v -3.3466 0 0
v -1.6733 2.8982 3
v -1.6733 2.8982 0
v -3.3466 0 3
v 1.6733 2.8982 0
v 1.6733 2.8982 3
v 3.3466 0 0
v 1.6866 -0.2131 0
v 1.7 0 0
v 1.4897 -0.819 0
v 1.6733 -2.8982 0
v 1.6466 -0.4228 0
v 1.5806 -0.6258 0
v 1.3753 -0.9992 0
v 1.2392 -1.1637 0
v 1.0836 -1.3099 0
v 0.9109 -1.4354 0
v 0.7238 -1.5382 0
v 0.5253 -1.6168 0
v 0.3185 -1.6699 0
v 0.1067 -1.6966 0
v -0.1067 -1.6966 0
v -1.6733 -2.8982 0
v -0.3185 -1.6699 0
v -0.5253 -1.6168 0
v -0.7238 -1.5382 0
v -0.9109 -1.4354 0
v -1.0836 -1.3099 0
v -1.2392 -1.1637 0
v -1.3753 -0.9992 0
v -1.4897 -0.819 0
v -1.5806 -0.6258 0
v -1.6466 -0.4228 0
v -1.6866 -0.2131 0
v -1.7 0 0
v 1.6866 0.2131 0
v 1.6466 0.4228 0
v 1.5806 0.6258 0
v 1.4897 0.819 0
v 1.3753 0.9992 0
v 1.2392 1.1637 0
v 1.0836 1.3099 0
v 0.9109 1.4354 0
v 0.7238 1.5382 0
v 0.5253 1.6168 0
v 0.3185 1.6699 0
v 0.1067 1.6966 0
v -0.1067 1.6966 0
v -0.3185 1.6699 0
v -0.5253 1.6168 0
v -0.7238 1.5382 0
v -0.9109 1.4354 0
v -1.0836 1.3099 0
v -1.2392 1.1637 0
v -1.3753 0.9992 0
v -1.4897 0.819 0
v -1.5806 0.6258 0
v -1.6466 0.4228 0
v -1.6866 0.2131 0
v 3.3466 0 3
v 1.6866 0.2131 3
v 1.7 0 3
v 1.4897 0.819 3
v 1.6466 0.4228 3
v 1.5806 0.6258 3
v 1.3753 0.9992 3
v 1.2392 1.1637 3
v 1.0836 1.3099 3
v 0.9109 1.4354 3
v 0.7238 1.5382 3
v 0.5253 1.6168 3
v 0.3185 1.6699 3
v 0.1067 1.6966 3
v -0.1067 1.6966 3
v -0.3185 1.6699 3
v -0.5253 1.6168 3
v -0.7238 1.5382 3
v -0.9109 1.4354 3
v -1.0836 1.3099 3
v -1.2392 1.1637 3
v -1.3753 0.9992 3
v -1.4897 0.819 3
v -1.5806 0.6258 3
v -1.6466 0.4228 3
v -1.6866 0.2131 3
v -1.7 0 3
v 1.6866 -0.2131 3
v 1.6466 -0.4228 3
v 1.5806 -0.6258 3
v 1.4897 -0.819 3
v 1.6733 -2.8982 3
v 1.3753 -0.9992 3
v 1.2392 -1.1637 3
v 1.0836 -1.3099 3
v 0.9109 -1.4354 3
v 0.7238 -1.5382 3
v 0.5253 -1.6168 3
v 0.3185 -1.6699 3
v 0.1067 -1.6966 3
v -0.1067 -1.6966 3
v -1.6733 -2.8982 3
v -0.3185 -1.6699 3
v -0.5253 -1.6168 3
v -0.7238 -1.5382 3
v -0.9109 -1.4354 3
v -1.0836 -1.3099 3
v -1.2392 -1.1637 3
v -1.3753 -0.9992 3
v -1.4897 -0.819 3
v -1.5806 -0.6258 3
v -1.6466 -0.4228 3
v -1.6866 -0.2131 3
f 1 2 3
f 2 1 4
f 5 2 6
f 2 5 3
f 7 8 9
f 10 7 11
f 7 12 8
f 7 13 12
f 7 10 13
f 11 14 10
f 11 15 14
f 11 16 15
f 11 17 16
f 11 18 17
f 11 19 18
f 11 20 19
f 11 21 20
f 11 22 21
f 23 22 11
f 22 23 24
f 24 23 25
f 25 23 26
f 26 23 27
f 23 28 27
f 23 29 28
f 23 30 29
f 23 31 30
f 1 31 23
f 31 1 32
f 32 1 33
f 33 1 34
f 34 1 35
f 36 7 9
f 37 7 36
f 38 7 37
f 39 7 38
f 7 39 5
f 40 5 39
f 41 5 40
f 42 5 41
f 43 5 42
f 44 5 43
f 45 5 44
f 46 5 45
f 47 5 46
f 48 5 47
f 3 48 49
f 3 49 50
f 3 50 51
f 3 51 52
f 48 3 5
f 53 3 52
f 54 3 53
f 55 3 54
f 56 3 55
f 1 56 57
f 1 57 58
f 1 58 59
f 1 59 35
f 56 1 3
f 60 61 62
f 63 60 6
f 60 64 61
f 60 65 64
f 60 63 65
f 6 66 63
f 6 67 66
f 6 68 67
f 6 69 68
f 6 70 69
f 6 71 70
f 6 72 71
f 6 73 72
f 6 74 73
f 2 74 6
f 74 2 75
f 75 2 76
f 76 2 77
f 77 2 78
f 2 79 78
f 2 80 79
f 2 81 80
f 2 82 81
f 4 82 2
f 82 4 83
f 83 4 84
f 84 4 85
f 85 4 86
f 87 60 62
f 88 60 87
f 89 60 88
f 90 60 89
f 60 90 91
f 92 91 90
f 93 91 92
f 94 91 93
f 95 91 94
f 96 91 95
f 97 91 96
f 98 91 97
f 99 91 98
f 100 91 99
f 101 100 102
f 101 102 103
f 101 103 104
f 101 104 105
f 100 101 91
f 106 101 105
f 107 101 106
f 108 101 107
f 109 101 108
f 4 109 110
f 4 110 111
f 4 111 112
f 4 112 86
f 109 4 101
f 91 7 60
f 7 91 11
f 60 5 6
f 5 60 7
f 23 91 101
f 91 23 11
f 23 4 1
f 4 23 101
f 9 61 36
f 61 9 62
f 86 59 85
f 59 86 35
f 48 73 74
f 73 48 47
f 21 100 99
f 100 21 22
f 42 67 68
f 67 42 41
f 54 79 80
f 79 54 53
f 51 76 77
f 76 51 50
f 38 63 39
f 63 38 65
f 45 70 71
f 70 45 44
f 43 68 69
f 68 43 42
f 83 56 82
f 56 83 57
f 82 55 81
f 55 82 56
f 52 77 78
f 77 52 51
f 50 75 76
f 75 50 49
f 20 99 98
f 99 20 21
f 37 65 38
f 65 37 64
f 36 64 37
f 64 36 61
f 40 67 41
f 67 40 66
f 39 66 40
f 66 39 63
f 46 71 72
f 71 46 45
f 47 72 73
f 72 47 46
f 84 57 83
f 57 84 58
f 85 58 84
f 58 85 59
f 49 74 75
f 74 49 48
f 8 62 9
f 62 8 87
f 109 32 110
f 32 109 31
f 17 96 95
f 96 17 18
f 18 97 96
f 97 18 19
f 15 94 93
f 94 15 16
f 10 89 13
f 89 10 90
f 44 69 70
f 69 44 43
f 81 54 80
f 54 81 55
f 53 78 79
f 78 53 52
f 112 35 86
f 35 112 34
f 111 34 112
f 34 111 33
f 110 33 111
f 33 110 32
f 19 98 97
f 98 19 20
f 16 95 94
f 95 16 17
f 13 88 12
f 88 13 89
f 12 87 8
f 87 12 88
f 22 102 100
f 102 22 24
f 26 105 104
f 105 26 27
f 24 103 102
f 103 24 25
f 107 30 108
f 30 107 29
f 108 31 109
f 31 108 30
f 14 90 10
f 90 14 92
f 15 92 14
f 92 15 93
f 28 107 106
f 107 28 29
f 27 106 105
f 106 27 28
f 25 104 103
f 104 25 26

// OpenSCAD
$fn = 50;


difference() {
	union() {
		translate(v = [0, 0, 0]) {
			rotate(a = [0, 0, 0]) {
				translate(v = [0, 0, 0]) {
					rotate(a = [0, 0, 0]) {
						linear_extrude(height = 3) {
							polygon(points = [[3.3466000000, 0.0000000000], [1.6733000000, 2.8982406163], [-1.6733000000, 2.8982406163], [-3.3466000000, 0.0000000000], [-1.6733000000, -2.8982406163], [1.6733000000, -2.8982406163]]);
						}
					}
				}
			}
		}
	}
	union() {
		translate(v = [0, 0, -10]) {
			rotate(a = [0, 0, 0]) {
				cylinder(h = 100, r = 1.7000000000);
			}
		}
	}
}
